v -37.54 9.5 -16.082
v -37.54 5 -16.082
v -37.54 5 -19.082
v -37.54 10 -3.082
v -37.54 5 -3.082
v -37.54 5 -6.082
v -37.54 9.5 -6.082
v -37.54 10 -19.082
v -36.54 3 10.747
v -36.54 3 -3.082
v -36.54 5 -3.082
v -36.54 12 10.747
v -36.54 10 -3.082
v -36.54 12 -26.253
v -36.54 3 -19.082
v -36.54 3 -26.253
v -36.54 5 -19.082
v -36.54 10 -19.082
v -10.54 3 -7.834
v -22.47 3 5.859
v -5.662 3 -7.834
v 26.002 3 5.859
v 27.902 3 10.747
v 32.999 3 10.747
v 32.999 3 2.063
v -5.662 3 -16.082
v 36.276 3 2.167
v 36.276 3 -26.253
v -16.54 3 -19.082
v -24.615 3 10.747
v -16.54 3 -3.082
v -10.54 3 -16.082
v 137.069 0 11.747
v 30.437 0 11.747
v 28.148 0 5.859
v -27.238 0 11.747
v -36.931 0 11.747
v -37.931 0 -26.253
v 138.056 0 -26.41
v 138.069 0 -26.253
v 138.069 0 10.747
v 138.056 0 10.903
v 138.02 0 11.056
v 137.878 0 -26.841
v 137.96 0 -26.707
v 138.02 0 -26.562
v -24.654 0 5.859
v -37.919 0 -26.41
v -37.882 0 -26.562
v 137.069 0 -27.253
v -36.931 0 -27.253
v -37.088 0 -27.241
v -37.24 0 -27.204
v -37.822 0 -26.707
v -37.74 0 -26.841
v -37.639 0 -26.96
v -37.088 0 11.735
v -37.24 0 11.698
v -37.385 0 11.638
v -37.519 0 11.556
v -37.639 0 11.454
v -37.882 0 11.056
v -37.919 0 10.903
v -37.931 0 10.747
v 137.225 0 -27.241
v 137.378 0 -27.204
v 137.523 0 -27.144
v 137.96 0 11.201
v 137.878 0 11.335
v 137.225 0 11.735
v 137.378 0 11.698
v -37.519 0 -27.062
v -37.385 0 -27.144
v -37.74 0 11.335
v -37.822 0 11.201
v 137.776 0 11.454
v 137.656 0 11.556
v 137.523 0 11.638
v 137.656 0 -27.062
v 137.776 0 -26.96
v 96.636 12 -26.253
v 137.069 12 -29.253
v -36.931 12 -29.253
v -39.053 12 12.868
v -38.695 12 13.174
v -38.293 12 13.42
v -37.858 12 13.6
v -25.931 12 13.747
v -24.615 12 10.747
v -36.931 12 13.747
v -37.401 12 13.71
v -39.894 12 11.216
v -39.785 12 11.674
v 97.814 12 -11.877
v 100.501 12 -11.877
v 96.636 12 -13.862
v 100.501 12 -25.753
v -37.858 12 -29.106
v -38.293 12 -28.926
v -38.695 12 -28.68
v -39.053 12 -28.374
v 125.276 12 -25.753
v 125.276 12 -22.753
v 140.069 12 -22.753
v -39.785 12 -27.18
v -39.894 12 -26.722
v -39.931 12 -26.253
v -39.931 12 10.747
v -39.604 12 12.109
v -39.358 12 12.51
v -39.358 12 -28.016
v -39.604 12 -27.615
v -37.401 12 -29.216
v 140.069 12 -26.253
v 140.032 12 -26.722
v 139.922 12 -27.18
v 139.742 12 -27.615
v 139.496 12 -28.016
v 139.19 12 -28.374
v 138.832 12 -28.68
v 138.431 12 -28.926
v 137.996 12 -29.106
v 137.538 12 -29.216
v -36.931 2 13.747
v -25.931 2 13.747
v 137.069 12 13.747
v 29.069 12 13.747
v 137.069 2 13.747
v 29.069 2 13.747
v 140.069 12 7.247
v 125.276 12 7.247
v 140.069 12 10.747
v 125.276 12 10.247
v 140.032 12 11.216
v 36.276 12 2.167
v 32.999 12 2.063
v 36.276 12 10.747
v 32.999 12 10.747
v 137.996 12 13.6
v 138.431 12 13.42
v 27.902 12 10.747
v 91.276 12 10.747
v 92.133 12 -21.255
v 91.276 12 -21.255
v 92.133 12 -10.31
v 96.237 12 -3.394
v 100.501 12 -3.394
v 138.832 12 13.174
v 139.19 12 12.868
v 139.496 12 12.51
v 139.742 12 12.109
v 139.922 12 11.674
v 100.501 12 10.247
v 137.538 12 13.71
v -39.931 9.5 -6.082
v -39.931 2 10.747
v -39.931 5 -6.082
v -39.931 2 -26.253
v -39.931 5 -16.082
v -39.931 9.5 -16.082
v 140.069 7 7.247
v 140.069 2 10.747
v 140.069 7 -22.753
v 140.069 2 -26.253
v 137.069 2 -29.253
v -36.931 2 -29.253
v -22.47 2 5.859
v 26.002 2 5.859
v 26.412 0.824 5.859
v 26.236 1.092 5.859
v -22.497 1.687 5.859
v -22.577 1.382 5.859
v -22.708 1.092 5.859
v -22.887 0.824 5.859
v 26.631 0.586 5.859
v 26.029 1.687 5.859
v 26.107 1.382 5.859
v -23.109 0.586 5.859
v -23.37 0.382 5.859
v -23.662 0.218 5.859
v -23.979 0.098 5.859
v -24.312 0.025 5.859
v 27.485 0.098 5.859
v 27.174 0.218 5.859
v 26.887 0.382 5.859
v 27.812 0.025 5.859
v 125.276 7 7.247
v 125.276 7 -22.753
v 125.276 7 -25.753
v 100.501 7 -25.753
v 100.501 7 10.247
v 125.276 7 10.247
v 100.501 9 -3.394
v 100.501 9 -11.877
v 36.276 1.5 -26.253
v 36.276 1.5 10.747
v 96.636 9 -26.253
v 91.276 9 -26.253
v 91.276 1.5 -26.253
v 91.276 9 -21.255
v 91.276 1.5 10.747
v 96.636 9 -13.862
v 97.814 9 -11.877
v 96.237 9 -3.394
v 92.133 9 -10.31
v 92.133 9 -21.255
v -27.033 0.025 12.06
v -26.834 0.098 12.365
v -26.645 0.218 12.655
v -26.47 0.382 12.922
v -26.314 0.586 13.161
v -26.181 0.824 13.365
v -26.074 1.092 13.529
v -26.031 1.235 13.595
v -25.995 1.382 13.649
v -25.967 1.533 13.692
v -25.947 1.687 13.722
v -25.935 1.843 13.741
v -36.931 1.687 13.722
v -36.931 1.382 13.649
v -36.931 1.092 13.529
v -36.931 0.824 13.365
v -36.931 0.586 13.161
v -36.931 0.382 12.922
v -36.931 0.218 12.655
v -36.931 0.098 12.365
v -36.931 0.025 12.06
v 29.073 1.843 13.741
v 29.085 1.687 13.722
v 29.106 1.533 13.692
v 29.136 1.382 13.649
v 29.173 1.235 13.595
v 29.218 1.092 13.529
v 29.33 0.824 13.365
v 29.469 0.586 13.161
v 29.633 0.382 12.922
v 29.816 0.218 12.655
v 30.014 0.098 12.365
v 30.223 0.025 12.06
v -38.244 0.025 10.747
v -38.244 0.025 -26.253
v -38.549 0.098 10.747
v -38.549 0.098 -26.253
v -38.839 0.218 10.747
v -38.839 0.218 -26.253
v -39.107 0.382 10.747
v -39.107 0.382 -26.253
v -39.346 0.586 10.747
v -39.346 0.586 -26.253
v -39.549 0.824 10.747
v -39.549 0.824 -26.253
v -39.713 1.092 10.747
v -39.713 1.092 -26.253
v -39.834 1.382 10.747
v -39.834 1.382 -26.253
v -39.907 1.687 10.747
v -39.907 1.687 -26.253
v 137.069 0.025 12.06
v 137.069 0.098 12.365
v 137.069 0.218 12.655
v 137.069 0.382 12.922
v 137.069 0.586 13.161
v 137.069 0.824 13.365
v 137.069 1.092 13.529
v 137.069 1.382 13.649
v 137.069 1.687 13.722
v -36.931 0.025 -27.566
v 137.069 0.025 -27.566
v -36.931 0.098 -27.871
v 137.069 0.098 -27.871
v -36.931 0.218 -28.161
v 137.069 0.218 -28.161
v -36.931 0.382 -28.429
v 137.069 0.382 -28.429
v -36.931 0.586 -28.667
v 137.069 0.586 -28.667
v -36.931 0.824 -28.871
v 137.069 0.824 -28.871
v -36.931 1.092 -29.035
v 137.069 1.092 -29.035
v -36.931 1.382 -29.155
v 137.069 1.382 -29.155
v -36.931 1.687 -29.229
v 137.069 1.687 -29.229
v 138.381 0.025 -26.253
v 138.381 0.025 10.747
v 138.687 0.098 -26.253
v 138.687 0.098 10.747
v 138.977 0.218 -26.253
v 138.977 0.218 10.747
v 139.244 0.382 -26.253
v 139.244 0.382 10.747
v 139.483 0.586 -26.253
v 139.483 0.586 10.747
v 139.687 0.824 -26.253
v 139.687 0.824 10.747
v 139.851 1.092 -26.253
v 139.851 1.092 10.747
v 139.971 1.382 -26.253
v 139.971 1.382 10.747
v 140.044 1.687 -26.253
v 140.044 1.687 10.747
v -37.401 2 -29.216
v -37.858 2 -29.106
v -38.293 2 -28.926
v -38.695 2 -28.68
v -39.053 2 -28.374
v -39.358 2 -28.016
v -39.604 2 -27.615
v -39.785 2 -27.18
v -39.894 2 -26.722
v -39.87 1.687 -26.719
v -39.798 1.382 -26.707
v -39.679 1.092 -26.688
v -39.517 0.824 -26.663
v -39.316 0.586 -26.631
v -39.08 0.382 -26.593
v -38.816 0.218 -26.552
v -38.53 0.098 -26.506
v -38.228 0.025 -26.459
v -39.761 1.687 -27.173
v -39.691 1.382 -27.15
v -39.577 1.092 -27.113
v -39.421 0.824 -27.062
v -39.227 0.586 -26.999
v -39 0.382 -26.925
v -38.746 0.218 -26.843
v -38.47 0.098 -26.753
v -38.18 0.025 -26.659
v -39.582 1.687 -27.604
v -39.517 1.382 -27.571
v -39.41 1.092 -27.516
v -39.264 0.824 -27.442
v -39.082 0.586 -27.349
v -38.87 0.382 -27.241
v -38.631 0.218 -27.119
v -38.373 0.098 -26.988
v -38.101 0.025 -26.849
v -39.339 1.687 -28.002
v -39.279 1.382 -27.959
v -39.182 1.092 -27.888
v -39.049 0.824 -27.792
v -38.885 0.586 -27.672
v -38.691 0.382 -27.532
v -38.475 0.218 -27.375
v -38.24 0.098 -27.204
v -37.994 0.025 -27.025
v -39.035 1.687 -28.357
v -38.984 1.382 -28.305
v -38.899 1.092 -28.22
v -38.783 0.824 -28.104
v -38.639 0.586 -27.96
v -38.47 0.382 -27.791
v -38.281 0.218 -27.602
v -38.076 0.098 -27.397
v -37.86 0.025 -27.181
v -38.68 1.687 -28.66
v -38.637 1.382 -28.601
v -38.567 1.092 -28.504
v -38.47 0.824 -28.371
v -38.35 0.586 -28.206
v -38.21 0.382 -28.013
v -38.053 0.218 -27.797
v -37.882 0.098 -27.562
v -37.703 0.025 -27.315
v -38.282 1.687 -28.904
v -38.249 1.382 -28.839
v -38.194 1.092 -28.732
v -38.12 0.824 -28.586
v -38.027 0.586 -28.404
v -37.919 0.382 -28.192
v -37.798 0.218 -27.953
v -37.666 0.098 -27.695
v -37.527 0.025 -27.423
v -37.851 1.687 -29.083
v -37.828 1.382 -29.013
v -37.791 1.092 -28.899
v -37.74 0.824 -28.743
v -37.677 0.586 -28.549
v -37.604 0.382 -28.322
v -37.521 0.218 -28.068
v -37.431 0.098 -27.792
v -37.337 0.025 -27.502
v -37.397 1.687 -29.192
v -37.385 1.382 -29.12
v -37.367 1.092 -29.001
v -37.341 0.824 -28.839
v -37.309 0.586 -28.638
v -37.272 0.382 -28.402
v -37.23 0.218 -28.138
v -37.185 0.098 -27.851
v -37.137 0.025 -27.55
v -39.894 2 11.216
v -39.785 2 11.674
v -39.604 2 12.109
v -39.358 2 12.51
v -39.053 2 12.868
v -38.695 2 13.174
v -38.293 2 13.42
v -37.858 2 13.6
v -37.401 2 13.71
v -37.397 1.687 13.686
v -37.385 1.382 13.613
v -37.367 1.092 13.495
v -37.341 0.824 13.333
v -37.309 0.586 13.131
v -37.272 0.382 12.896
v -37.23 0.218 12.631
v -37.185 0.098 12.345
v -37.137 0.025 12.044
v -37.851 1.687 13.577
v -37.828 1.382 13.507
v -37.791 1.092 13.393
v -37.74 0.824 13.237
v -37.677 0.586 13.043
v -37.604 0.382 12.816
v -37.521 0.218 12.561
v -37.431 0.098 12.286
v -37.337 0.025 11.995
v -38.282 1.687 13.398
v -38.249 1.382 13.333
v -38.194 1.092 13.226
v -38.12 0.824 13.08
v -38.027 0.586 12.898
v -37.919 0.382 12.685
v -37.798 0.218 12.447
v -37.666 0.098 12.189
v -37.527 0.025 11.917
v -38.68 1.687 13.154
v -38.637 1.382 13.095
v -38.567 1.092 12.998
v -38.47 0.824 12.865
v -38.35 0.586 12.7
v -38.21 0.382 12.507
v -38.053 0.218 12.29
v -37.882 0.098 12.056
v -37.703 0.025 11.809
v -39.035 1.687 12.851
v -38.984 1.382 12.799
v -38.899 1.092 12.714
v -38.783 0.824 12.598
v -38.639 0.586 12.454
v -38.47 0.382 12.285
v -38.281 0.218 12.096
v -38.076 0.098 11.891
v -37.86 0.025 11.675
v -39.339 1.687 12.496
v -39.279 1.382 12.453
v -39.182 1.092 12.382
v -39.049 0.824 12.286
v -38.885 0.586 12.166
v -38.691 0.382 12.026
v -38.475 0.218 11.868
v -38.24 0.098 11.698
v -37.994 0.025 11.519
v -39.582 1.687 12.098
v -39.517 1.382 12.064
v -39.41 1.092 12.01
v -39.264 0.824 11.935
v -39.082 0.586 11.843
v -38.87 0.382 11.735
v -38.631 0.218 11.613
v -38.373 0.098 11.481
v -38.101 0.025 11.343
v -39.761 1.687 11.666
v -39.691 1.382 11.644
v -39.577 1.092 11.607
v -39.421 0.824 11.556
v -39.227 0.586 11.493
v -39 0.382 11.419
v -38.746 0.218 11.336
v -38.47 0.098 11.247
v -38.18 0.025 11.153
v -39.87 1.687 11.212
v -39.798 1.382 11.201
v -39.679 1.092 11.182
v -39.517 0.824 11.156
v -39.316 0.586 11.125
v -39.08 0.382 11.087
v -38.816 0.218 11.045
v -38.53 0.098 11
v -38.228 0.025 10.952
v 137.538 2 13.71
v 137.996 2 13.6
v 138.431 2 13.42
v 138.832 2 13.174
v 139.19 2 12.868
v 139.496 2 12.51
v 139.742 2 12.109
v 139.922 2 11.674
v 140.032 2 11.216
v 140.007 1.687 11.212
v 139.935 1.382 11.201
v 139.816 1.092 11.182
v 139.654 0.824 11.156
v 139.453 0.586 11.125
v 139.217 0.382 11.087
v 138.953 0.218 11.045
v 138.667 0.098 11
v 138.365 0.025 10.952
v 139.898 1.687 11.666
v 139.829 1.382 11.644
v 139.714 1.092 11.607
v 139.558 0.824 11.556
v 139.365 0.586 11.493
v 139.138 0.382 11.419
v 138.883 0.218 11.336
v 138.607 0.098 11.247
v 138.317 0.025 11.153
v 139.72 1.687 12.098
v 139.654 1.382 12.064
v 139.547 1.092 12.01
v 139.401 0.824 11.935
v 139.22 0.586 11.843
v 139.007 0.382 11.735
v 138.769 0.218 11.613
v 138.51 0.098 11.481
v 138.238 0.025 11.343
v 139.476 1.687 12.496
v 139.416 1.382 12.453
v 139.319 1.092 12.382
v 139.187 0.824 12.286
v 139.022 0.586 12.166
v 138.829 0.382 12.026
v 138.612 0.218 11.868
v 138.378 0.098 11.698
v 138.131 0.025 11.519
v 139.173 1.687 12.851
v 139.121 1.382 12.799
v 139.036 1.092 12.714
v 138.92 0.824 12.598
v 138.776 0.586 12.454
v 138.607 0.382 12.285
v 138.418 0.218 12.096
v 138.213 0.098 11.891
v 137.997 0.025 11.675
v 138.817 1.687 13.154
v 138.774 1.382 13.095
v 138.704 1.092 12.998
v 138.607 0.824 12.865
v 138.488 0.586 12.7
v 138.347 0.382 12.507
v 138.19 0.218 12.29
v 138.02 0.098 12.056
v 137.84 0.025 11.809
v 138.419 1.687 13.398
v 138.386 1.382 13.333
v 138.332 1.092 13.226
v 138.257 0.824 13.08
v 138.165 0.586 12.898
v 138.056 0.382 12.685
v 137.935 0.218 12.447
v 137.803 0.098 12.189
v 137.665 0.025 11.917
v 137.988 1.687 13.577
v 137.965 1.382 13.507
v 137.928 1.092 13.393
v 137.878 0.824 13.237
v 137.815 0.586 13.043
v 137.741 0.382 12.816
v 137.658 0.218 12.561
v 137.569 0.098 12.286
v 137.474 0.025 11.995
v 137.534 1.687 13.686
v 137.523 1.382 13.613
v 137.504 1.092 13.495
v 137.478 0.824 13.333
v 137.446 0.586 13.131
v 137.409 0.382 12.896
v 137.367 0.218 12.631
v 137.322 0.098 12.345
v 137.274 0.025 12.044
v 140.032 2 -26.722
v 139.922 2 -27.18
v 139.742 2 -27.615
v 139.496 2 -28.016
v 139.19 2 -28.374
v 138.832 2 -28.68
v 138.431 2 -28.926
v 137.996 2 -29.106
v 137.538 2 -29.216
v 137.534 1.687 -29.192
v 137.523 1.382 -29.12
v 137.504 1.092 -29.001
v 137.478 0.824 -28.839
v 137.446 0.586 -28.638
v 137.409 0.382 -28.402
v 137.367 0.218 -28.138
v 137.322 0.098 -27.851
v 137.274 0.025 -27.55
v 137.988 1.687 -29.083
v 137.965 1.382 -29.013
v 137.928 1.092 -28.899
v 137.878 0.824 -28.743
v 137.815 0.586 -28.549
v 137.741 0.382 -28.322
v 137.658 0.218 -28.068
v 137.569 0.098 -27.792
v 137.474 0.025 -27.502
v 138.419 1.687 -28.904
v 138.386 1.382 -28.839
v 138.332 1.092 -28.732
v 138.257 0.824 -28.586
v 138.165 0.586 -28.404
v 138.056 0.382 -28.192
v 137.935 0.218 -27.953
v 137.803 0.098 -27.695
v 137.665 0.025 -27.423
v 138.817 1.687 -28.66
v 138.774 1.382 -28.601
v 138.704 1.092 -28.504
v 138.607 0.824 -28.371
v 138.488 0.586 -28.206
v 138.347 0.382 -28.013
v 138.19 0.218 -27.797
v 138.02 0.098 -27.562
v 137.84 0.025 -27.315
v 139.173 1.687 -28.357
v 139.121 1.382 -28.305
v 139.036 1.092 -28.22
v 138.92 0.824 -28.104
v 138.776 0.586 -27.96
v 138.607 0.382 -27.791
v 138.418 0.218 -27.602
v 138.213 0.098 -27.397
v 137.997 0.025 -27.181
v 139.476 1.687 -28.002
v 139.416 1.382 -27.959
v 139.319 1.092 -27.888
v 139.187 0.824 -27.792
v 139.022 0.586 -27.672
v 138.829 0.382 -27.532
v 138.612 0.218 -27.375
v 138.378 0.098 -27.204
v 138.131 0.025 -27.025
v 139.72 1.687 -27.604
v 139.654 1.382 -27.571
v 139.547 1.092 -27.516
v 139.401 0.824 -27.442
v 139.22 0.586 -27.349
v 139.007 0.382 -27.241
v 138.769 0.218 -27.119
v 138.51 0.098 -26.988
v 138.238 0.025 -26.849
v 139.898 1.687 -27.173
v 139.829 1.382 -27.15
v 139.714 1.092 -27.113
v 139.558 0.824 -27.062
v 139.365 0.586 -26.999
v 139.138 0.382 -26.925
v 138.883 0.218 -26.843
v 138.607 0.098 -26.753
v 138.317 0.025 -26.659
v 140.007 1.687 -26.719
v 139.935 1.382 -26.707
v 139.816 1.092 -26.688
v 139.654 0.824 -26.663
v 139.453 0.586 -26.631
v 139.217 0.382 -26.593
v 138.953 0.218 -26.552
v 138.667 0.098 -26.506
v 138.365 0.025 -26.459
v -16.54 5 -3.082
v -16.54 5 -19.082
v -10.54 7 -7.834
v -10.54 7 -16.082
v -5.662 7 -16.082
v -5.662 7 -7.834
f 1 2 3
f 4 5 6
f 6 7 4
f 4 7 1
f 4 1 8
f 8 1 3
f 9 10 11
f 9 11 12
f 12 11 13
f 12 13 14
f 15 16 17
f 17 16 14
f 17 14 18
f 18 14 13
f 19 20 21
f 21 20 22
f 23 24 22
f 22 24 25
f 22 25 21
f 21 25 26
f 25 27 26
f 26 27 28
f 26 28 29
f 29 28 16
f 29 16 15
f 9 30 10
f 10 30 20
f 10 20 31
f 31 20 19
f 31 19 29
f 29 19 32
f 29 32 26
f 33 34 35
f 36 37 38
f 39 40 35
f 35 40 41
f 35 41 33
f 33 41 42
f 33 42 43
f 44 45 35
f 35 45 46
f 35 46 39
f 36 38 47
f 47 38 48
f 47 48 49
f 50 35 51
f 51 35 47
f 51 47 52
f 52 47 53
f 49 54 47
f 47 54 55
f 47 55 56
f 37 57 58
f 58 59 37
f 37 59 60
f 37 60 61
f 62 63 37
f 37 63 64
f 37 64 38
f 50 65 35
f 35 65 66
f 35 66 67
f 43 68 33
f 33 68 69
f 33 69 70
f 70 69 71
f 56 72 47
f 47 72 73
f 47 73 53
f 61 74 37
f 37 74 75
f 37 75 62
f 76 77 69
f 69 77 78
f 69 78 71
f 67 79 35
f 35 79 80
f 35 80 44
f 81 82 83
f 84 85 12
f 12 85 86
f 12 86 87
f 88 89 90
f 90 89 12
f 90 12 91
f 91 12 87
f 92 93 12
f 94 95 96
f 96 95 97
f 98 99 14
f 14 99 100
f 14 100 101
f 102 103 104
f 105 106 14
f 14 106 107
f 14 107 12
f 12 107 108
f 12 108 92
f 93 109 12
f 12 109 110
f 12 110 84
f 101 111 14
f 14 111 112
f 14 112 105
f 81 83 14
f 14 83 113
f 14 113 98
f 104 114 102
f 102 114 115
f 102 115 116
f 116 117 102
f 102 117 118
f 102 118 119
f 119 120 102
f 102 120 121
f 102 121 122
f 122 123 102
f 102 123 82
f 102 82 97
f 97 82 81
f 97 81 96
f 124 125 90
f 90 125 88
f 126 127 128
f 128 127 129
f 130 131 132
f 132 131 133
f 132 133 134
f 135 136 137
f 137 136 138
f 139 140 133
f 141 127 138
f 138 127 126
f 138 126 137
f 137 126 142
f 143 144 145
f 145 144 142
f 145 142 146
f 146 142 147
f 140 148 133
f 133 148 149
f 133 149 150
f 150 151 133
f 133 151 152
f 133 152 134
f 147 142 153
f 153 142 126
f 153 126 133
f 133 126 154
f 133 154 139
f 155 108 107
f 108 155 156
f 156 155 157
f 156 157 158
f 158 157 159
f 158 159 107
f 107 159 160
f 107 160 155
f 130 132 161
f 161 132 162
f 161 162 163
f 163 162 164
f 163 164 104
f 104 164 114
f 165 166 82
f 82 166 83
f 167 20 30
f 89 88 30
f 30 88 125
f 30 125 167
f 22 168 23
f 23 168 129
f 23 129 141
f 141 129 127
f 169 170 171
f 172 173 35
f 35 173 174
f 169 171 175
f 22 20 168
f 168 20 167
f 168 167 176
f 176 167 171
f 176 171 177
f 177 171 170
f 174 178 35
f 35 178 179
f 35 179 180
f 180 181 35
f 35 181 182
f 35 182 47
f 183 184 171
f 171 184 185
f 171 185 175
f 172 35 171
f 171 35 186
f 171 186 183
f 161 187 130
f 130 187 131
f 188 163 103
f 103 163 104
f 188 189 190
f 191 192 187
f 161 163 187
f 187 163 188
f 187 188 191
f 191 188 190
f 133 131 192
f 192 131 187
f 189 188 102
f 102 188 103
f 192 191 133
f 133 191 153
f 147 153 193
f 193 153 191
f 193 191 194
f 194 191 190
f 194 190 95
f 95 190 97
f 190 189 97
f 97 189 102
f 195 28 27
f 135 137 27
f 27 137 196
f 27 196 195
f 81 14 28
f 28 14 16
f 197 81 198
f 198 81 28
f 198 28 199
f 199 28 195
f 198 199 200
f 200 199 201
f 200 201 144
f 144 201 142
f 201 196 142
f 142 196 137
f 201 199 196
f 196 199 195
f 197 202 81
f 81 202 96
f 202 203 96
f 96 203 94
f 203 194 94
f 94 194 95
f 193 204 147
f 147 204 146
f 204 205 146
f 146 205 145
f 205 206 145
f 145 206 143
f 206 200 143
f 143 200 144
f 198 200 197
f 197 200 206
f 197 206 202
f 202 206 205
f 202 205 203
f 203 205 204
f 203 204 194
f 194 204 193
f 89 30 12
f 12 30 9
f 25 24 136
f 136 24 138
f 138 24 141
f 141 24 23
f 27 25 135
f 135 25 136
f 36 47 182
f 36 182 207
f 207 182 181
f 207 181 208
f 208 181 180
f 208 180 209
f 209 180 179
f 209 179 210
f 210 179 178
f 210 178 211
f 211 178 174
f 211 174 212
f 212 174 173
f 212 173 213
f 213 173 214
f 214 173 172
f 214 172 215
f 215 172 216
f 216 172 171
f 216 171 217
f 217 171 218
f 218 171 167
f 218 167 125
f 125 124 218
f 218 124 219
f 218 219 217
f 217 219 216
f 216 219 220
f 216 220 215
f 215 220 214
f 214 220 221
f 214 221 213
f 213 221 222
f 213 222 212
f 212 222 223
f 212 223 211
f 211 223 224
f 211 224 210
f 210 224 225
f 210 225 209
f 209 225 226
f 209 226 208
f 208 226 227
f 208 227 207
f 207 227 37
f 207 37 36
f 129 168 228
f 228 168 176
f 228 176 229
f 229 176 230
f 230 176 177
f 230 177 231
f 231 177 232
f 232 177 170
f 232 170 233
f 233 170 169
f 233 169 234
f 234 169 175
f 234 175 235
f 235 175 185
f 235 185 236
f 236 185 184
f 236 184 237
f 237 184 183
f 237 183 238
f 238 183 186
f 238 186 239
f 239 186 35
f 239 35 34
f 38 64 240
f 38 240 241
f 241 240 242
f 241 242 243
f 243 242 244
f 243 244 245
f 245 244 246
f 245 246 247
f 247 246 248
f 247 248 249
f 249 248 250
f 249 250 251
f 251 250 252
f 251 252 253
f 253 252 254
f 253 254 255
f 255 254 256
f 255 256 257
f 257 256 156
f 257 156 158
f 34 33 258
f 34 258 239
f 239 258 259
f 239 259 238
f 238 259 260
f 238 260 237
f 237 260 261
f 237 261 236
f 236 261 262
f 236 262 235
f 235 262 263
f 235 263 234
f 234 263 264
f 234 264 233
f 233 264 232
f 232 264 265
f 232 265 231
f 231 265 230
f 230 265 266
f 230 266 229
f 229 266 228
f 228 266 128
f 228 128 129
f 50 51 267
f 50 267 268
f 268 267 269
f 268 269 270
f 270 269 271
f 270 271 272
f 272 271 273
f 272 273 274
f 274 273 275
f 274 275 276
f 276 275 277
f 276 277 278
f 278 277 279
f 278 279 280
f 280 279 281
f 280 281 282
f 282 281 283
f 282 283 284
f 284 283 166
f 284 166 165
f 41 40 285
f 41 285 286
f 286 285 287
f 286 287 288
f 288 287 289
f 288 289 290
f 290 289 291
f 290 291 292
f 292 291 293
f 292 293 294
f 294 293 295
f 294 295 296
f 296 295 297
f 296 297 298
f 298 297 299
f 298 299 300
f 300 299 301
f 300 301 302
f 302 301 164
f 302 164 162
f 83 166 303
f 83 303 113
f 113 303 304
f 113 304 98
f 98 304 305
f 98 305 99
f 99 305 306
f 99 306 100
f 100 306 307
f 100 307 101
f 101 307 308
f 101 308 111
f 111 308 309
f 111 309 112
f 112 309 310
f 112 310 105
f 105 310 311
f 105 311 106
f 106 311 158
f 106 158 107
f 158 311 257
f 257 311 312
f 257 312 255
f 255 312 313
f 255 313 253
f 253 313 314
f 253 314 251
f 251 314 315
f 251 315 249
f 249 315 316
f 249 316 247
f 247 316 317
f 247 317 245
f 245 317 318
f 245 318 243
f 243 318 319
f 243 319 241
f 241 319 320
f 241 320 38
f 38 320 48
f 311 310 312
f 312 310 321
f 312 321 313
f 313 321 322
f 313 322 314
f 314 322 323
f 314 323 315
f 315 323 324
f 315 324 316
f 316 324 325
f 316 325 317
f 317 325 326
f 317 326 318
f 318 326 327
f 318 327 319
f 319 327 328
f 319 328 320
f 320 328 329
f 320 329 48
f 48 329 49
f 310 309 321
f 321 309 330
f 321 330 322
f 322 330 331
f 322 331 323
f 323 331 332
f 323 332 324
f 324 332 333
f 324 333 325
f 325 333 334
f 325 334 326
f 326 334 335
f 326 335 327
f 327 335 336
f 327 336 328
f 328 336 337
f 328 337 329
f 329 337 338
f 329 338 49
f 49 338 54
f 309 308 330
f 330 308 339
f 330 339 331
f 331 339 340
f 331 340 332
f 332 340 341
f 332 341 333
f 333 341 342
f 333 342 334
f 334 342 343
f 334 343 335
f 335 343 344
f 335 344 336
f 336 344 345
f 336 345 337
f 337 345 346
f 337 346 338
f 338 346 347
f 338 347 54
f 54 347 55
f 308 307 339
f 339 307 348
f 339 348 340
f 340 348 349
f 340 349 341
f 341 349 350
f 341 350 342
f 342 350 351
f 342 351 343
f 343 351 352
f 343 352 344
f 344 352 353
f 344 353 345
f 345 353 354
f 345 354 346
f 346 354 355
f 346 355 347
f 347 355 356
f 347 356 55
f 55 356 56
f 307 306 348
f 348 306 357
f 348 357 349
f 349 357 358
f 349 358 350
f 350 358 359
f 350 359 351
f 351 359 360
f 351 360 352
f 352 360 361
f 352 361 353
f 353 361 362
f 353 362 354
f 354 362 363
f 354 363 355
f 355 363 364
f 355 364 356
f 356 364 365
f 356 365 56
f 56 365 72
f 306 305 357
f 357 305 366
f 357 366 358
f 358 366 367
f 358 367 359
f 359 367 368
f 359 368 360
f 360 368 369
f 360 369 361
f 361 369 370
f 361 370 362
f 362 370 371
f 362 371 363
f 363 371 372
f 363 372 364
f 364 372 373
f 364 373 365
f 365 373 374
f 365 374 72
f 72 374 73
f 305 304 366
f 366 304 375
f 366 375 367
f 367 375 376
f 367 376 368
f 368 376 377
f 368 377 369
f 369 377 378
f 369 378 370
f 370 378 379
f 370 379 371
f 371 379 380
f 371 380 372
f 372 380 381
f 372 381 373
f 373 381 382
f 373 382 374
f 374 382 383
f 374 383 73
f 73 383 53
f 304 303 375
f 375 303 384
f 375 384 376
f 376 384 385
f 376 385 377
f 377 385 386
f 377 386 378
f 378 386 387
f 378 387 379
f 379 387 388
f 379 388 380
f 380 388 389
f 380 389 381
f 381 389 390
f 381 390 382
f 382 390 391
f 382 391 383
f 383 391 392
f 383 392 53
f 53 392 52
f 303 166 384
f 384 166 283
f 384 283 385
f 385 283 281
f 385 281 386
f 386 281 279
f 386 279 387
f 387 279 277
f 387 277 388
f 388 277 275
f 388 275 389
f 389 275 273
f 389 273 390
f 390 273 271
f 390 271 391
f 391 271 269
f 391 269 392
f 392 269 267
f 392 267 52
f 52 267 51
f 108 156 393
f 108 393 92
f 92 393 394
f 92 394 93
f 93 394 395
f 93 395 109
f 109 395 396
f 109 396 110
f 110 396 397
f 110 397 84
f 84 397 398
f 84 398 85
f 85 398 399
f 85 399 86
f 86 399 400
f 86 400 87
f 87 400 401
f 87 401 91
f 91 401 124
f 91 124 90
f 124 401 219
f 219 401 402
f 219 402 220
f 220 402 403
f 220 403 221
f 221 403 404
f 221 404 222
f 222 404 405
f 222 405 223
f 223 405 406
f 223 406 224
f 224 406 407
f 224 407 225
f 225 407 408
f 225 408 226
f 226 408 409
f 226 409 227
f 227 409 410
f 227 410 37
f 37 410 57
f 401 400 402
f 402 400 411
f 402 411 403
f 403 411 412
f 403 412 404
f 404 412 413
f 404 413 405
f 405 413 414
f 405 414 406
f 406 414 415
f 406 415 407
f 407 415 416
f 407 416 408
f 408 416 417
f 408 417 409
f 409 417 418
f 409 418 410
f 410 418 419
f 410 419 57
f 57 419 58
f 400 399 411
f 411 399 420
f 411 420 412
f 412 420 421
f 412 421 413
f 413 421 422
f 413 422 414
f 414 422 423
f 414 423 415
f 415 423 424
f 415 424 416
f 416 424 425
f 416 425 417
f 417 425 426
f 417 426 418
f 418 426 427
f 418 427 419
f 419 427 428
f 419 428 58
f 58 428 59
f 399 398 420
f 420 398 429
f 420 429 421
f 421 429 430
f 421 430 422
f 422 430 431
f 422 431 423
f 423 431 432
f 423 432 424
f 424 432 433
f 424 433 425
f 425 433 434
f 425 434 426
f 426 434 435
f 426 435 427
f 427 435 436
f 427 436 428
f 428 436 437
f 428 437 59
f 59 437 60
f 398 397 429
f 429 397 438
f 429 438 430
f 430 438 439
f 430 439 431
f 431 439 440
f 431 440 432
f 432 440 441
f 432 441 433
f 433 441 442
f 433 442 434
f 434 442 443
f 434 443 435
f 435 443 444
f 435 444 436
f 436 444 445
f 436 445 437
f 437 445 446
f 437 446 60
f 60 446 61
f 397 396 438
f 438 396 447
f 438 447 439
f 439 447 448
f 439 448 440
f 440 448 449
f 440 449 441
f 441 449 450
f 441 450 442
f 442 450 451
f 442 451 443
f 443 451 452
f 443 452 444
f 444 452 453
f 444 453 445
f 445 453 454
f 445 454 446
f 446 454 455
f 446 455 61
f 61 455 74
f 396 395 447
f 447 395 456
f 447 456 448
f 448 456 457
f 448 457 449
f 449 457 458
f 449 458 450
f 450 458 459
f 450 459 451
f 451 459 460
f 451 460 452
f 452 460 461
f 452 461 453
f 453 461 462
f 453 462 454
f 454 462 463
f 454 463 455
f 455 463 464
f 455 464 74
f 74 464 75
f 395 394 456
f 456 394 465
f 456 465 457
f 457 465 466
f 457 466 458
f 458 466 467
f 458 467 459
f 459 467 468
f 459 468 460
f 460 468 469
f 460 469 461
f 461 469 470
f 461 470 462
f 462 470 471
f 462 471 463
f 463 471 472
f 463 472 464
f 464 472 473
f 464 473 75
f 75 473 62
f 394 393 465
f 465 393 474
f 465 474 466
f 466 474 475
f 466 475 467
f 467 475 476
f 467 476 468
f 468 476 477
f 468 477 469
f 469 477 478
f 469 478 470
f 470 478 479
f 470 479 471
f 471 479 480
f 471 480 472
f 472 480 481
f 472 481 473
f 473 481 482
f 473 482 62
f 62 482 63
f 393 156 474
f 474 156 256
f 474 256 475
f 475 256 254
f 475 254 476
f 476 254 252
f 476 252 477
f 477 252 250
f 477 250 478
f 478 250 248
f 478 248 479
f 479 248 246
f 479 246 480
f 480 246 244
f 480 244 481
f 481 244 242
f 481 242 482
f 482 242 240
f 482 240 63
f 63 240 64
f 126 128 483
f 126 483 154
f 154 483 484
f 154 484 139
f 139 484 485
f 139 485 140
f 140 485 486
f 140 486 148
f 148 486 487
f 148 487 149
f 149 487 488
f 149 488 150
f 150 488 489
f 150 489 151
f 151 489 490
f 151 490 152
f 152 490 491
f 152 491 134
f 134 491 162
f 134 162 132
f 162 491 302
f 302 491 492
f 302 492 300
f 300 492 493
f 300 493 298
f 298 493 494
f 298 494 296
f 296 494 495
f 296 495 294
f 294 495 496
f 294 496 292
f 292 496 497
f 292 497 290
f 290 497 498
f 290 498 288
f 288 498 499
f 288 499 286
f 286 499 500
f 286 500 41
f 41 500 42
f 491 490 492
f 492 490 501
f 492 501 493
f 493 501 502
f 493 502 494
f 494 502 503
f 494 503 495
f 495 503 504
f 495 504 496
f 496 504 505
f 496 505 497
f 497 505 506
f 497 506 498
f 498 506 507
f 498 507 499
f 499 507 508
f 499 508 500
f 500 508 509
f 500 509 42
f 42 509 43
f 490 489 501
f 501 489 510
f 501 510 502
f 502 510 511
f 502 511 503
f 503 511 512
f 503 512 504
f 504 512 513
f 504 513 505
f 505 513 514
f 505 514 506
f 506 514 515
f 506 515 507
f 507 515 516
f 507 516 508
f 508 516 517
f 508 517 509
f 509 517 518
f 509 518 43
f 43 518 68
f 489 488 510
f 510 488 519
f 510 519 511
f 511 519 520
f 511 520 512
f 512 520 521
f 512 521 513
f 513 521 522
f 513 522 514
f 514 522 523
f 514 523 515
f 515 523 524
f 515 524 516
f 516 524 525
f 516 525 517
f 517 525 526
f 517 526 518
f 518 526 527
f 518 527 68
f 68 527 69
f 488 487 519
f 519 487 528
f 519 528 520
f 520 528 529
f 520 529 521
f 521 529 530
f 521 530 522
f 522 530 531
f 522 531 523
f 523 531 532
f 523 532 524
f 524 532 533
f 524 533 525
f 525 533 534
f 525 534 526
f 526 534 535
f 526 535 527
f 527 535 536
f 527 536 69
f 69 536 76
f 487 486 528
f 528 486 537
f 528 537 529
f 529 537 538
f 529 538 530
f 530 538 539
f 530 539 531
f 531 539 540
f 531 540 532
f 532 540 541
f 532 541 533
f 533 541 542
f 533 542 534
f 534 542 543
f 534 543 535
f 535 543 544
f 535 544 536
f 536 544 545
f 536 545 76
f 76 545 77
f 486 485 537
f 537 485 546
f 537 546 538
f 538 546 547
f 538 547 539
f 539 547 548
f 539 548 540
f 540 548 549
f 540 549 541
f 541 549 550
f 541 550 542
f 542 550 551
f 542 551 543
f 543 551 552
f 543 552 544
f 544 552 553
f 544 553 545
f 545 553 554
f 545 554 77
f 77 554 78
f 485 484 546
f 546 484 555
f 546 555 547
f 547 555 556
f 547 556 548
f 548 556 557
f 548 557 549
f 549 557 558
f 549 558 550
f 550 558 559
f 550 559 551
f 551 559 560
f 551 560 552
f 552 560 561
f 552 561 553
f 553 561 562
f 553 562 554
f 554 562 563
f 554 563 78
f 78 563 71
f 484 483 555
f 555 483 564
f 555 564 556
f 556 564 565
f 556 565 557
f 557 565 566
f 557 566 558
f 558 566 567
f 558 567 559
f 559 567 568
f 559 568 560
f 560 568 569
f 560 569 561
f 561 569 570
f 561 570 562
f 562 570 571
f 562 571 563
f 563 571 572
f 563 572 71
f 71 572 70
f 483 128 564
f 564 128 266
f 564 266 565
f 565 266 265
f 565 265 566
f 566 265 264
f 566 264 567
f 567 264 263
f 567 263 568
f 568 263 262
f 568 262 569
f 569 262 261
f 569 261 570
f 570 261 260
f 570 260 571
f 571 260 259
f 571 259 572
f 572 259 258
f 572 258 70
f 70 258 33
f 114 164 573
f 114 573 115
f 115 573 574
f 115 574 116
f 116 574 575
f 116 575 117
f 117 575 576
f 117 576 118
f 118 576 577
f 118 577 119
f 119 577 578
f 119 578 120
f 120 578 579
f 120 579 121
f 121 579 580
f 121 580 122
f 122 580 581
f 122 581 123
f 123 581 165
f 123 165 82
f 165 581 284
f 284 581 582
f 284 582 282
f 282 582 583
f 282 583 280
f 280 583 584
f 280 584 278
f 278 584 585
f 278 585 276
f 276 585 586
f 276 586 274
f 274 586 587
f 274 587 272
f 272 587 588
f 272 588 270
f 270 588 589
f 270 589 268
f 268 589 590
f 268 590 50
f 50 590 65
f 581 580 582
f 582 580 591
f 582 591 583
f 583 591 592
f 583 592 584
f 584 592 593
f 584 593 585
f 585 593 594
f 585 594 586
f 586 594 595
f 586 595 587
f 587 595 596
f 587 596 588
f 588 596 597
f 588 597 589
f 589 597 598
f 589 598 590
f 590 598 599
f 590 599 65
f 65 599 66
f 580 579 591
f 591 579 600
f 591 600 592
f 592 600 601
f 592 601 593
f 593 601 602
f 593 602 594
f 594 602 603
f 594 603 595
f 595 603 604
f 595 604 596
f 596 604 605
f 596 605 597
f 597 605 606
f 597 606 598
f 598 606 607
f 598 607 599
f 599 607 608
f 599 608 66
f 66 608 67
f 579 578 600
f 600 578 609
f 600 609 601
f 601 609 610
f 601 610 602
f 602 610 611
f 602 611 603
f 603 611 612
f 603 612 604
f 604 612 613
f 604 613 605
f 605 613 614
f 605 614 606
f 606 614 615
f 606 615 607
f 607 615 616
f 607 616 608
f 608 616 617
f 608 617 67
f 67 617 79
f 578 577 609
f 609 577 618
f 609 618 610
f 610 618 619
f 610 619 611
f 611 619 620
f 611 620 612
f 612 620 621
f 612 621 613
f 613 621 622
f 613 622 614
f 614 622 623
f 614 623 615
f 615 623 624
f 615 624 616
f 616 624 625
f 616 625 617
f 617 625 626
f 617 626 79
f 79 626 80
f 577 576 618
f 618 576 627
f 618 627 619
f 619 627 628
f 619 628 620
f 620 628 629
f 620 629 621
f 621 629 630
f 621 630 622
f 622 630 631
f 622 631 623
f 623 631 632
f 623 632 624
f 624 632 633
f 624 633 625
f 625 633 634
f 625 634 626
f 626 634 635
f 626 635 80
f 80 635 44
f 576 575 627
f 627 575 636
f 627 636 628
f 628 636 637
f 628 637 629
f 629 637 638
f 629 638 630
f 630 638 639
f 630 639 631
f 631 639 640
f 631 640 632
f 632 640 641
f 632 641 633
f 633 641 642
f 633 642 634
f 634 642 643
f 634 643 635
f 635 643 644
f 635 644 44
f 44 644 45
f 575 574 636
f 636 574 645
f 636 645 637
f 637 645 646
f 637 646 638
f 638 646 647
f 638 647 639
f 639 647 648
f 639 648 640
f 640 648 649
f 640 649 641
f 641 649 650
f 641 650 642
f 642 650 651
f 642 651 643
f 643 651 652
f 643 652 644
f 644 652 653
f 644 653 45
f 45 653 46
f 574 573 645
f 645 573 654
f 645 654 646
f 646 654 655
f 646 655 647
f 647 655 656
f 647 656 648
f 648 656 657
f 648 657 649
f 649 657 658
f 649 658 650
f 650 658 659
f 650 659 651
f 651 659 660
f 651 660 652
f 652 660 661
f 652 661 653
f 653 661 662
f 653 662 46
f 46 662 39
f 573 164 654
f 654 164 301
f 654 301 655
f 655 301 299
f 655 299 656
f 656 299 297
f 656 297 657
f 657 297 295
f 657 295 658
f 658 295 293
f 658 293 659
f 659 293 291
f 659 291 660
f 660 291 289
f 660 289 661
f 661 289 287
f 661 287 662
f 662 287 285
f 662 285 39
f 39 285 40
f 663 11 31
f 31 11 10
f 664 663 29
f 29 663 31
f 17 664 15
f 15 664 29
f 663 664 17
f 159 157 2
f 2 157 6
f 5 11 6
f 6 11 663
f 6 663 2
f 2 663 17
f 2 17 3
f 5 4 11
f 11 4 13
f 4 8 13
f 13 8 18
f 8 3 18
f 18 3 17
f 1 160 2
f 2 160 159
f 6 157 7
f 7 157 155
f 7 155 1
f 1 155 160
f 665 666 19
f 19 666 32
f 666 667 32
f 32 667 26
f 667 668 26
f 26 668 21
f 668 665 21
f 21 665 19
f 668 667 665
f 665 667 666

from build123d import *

# Parameters (mm, degrees)
SKETCH_3_W           = 180
SKETCH_3_H           = 43
EXTRUDE_1_DEPTH      = 12
CUT_EXTRUDE_1_DEPTH  = 52
CUT_EXTRUDE_2_DEPTH  = 5
CUT_EXTRUDE_3_DEPTH  = 5
SKETCH_8_W           = 55
SKETCH_8_H           = 37
CUT_EXTRUDE_4_DEPTH  = 10.5
CUT_EXTRUDE_5_DEPTH  = 3
SKETCH_10_W          = 62.128790526
SKETCH_10_H          = 8.683746703
CUT_EXTRUDE_6_DEPTH  = 8
CUT_EXTRUDE_8_DEPTH  = 9
FILLET_2_R           = 2
FILLET_3_R           = 3
SKETCH_12_W          = 20
SKETCH_12_H          = 16
EXTRUDE_2_DEPTH      = 2
SKETCH_13_W          = 16
SKETCH_13_H          = 5
CUT_EXTRUDE_9_DEPTH  = 1
SKETCH_14_W          = 10
SKETCH_14_H          = 4.5
CUT_EXTRUDE_10_DEPTH = 11
EXTRUDE_3_DEPTH      = 2
EXTRUDE_3_DEPTH_BACK = 3
SKETCH_15_W          = 4.878003414
SKETCH_15_H          = 8.248491994


with BuildPart() as part:
    # 草图3 → 凸台-拉伸1 (new body)
    with BuildSketch(Plane(origin=(0, 0, 0), x_dir=(1, 0, 0), z_dir=(0, 1, 0))):
        with Locations((50.068597249, 7.753123643)):
            Rectangle(SKETCH_3_W, SKETCH_3_H)
    extrude(amount=EXTRUDE_1_DEPTH)

    # 草图4 → 切除-拉伸1 (cut)
    with BuildSketch(Plane(origin=(0, 0, 0), x_dir=(1, 0, 0), z_dir=(0, 1, 0))):
        Polygon((-22.469613434, -5.858946979), (26.002261286, -5.858946979), (29.068597249, -13.746876357), (-25.931402751, -13.746876357), align=None)
    extrude(amount=CUT_EXTRUDE_1_DEPTH, mode=Mode.SUBTRACT)

    # 草图5 → 切除-拉伸2 (cut)
    with BuildSketch(Plane(origin=(0, 12, 0), x_dir=(1, 0, 0), z_dir=(0, 1, 0))):
        Polygon((140.068597249, 7.753123643), (140.068597249, 22.753123643), (125.276479966, 22.753123643), (125.276479966, -7.246876357), (140.068597249, -7.246876357), align=None)
    extrude(amount=-CUT_EXTRUDE_2_DEPTH, mode=Mode.SUBTRACT)

    # 草图7 → 切除-拉伸3 (cut)
    with BuildSketch(Plane(origin=(0, 12, 0), x_dir=(1, 0, 0), z_dir=(0, 1, 0))):
        Polygon((125.276479966, 7.753123643), (125.276479966, 25.753123643), (100.500825538, 25.753123643), (100.500825538, -10.246876357), (125.276479966, -10.246876357), align=None)
    extrude(amount=-CUT_EXTRUDE_3_DEPTH, mode=Mode.SUBTRACT)

    # 草图8 → 切除-拉伸4 (cut)
    with BuildSketch(Plane(origin=(0, 12, 0), x_dir=(1, 0, 0), z_dir=(0, 1, 0))):
        with Locations((63.776287419, 7.753123643)):
            Rectangle(SKETCH_8_W, SKETCH_8_H)
    extrude(amount=-CUT_EXTRUDE_4_DEPTH, mode=Mode.SUBTRACT)

    # 草图9 → 切除-拉伸5 (cut)
    with BuildSketch(Plane(origin=(0, 12, 0), x_dir=(1, 0, 0), z_dir=(0, 1, 0))):
        Polygon((91.276287419, 26.253123643), (96.635770173, 26.253123643), (96.635770173, 22.130591531), (96.635770173, 13.862098754), (97.813575381, 11.877191358), (100.500825538, 11.877191358), (100.500825538, 3.393971617), (96.236747254, 3.393971617), (92.132656028, 10.310430274), (92.132656028, 21.255120764), (91.276287419, 21.255120764), align=None)
    extrude(amount=-CUT_EXTRUDE_5_DEPTH, mode=Mode.SUBTRACT)

    # 草图10 → 切除-拉伸6 (cut)
    with BuildSketch(Plane(origin=(0, 12, 0), x_dir=(1, 0, 0), z_dir=(0, 1, 0))):
        with Locations((1.934159822, -6.405003006)):
            Rectangle(SKETCH_10_W, SKETCH_10_H)
    extrude(amount=-CUT_EXTRUDE_6_DEPTH, mode=Mode.SUBTRACT)

    # 草图11 → 切除-拉伸8 (cut)
    with BuildSketch(Plane(origin=(0, 12, 0), x_dir=(1, 0, 0), z_dir=(0, 1, 0))):
        Polygon((32.998555085, -10.746876357), (-36.5396752, -10.746876357), (-36.5396752, 26.253123643), (36.276287419, 26.253123643), (36.276287419, -2.167243749), (32.998555085, -2.063129654), align=None)
    extrude(amount=-CUT_EXTRUDE_8_DEPTH, mode=Mode.SUBTRACT)

    # 圆角2
    fillet_2_edges = [part.edges().sort_by_distance(p)[0] for p in [
        (84.568597249, 0, 13.746876357),
        (-24.200508092, 0, 9.802911668),
        (27.535429268, 0, 9.802911668),
        (50.068597249, 0, -29.253123643),
        (140.068597249, 0, -7.753123643),
        (-32.931402751, 0, 13.746876357),
        (-39.931402751, 0, -7.753123643),
    ]]
    fillet(fillet_2_edges, radius=FILLET_2_R)

    # 圆角3
    # the kernel refuses this fillet: 3 mm, written as the material it takes off along each edge
    with BuildSketch(Plane(origin=(-36.931402751, 0, 10.746876357), x_dir=(0, 0, 1), z_dir=(1, 0, 0))) as fillet_3_piece_1:
        with BuildLine():
            CenterArc((1, -2), 2, 0, 90)
            Line((3, -2), (3, 0))
            Line((3, 0), (1, 0))
        make_face()
    revolve(axis=Axis((-36.931402751, 0, 10.746876357), (0, -1, 0)), revolution_arc=90, mode=Mode.SUBTRACT)
    with BuildSketch(Plane(origin=(-36.931402751, 0, -26.253123643), x_dir=(-1, 0, 0), z_dir=(0, 0, 1))) as fillet_3_piece_2:
        with BuildLine():
            CenterArc((1, -2), 2, 0, 90)
            Line((3, -2), (3, 0))
            Line((3, 0), (1, 0))
        make_face()
    revolve(axis=Axis((-36.931402751, 0, -26.253123643), (0, -1, 0)), revolution_arc=90, mode=Mode.SUBTRACT)
    with BuildSketch(Plane(origin=(137.068597249, 0, 10.746876357), x_dir=(1, 0, 0), z_dir=(0, 0, -1))) as fillet_3_piece_3:
        with BuildLine():
            CenterArc((1, -2), 2, 0, 90)
            Line((3, -2), (3, 0))
            Line((3, 0), (1, 0))
        make_face()
    revolve(axis=Axis((137.068597249, 0, 10.746876357), (0, -1, 0)), revolution_arc=90, mode=Mode.SUBTRACT)
    with BuildSketch(Plane(origin=(137.068597249, 0, -26.253123643), x_dir=(0, 0, -1), z_dir=(-1, 0, 0))) as fillet_3_piece_4:
        with BuildLine():
            CenterArc((1, -2), 2, 0, 90)
            Line((3, -2), (3, 0))
            Line((3, 0), (1, 0))
        make_face()
    revolve(axis=Axis((137.068597249, 0, -26.253123643), (0, -1, 0)), revolution_arc=90, mode=Mode.SUBTRACT)
    with BuildSketch(Plane(origin=(-39.931402751, 0, -29.253123643), x_dir=(1, 0, 0), z_dir=(0, 1, 0))) as fillet_3_piece_5:
        with BuildLine():
            CenterArc((FILLET_3_R, -FILLET_3_R), FILLET_3_R, 90, 90)
            Line((0, -FILLET_3_R), (0, 0))
            Line((0, 0), (FILLET_3_R, 0))
        make_face()
    extrude(amount=19.5, mode=Mode.SUBTRACT)
    with BuildSketch(Plane(origin=(140.068597249, 0, -29.253123643), x_dir=(-1, 0, 0), z_dir=(0, 1, 0)), Plane(origin=(140.068597249, 0, 13.746876357), x_dir=(0, 0, -1), z_dir=(0, 1, 0)), Plane(origin=(-39.931402751, 0, 13.746876357), x_dir=(1, 0, 0), z_dir=(0, 1, 0))) as fillet_3_piece_6:
        with BuildLine():
            CenterArc((FILLET_3_R, FILLET_3_R), FILLET_3_R, 180, 90)
            Line((0, FILLET_3_R), (0, 0))
            Line((0, 0), (FILLET_3_R, 0))
        make_face()
    extrude(amount=19.5, mode=Mode.SUBTRACT)

    # 草图12 → 凸台-拉伸2 (add)
    with BuildSketch(Plane(origin=(0, 3, 0), x_dir=(1, 0, 0), z_dir=(0, 1, 0))):
        with Locations((-26.5396752, 11.082072108)):
            Rectangle(SKETCH_12_W, SKETCH_12_H)
    extrude(amount=EXTRUDE_2_DEPTH)

    # 草图13 → 切除-拉伸9 (cut)
    with BuildSketch(Plane(origin=(-36.5396752, 0, 0), x_dir=(0, 0, -1), z_dir=(1, 0, 0))):
        with Locations((11.082072108, 7.5)):
            Rectangle(SKETCH_13_W, SKETCH_13_H)
    extrude(amount=-CUT_EXTRUDE_9_DEPTH, mode=Mode.SUBTRACT)

    # 草图14 → 切除-拉伸10 (cut)
    with BuildSketch(Plane(origin=(-37.5396752, 0, 0), x_dir=(0, 0, -1), z_dir=(1, 0, 0))):
        with Locations((11.082072108, 7.25)):
            Rectangle(SKETCH_14_W, SKETCH_14_H)
    extrude(amount=-CUT_EXTRUDE_10_DEPTH, mode=Mode.SUBTRACT)

    # 草图15 → 凸台-拉伸3 (add, two sides: drawn at the far end of the back side and taken through both)
    with BuildSketch(Plane(origin=(0, 5, 0), x_dir=(1, 0, 0), z_dir=(0, 1, 0)).offset(-EXTRUDE_3_DEPTH_BACK)):
        with Locations((-8.100673493, 11.957826111)):
            Rectangle(SKETCH_15_W, SKETCH_15_H)
    extrude(amount=EXTRUDE_3_DEPTH + EXTRUDE_3_DEPTH_BACK)


solid = part.part
